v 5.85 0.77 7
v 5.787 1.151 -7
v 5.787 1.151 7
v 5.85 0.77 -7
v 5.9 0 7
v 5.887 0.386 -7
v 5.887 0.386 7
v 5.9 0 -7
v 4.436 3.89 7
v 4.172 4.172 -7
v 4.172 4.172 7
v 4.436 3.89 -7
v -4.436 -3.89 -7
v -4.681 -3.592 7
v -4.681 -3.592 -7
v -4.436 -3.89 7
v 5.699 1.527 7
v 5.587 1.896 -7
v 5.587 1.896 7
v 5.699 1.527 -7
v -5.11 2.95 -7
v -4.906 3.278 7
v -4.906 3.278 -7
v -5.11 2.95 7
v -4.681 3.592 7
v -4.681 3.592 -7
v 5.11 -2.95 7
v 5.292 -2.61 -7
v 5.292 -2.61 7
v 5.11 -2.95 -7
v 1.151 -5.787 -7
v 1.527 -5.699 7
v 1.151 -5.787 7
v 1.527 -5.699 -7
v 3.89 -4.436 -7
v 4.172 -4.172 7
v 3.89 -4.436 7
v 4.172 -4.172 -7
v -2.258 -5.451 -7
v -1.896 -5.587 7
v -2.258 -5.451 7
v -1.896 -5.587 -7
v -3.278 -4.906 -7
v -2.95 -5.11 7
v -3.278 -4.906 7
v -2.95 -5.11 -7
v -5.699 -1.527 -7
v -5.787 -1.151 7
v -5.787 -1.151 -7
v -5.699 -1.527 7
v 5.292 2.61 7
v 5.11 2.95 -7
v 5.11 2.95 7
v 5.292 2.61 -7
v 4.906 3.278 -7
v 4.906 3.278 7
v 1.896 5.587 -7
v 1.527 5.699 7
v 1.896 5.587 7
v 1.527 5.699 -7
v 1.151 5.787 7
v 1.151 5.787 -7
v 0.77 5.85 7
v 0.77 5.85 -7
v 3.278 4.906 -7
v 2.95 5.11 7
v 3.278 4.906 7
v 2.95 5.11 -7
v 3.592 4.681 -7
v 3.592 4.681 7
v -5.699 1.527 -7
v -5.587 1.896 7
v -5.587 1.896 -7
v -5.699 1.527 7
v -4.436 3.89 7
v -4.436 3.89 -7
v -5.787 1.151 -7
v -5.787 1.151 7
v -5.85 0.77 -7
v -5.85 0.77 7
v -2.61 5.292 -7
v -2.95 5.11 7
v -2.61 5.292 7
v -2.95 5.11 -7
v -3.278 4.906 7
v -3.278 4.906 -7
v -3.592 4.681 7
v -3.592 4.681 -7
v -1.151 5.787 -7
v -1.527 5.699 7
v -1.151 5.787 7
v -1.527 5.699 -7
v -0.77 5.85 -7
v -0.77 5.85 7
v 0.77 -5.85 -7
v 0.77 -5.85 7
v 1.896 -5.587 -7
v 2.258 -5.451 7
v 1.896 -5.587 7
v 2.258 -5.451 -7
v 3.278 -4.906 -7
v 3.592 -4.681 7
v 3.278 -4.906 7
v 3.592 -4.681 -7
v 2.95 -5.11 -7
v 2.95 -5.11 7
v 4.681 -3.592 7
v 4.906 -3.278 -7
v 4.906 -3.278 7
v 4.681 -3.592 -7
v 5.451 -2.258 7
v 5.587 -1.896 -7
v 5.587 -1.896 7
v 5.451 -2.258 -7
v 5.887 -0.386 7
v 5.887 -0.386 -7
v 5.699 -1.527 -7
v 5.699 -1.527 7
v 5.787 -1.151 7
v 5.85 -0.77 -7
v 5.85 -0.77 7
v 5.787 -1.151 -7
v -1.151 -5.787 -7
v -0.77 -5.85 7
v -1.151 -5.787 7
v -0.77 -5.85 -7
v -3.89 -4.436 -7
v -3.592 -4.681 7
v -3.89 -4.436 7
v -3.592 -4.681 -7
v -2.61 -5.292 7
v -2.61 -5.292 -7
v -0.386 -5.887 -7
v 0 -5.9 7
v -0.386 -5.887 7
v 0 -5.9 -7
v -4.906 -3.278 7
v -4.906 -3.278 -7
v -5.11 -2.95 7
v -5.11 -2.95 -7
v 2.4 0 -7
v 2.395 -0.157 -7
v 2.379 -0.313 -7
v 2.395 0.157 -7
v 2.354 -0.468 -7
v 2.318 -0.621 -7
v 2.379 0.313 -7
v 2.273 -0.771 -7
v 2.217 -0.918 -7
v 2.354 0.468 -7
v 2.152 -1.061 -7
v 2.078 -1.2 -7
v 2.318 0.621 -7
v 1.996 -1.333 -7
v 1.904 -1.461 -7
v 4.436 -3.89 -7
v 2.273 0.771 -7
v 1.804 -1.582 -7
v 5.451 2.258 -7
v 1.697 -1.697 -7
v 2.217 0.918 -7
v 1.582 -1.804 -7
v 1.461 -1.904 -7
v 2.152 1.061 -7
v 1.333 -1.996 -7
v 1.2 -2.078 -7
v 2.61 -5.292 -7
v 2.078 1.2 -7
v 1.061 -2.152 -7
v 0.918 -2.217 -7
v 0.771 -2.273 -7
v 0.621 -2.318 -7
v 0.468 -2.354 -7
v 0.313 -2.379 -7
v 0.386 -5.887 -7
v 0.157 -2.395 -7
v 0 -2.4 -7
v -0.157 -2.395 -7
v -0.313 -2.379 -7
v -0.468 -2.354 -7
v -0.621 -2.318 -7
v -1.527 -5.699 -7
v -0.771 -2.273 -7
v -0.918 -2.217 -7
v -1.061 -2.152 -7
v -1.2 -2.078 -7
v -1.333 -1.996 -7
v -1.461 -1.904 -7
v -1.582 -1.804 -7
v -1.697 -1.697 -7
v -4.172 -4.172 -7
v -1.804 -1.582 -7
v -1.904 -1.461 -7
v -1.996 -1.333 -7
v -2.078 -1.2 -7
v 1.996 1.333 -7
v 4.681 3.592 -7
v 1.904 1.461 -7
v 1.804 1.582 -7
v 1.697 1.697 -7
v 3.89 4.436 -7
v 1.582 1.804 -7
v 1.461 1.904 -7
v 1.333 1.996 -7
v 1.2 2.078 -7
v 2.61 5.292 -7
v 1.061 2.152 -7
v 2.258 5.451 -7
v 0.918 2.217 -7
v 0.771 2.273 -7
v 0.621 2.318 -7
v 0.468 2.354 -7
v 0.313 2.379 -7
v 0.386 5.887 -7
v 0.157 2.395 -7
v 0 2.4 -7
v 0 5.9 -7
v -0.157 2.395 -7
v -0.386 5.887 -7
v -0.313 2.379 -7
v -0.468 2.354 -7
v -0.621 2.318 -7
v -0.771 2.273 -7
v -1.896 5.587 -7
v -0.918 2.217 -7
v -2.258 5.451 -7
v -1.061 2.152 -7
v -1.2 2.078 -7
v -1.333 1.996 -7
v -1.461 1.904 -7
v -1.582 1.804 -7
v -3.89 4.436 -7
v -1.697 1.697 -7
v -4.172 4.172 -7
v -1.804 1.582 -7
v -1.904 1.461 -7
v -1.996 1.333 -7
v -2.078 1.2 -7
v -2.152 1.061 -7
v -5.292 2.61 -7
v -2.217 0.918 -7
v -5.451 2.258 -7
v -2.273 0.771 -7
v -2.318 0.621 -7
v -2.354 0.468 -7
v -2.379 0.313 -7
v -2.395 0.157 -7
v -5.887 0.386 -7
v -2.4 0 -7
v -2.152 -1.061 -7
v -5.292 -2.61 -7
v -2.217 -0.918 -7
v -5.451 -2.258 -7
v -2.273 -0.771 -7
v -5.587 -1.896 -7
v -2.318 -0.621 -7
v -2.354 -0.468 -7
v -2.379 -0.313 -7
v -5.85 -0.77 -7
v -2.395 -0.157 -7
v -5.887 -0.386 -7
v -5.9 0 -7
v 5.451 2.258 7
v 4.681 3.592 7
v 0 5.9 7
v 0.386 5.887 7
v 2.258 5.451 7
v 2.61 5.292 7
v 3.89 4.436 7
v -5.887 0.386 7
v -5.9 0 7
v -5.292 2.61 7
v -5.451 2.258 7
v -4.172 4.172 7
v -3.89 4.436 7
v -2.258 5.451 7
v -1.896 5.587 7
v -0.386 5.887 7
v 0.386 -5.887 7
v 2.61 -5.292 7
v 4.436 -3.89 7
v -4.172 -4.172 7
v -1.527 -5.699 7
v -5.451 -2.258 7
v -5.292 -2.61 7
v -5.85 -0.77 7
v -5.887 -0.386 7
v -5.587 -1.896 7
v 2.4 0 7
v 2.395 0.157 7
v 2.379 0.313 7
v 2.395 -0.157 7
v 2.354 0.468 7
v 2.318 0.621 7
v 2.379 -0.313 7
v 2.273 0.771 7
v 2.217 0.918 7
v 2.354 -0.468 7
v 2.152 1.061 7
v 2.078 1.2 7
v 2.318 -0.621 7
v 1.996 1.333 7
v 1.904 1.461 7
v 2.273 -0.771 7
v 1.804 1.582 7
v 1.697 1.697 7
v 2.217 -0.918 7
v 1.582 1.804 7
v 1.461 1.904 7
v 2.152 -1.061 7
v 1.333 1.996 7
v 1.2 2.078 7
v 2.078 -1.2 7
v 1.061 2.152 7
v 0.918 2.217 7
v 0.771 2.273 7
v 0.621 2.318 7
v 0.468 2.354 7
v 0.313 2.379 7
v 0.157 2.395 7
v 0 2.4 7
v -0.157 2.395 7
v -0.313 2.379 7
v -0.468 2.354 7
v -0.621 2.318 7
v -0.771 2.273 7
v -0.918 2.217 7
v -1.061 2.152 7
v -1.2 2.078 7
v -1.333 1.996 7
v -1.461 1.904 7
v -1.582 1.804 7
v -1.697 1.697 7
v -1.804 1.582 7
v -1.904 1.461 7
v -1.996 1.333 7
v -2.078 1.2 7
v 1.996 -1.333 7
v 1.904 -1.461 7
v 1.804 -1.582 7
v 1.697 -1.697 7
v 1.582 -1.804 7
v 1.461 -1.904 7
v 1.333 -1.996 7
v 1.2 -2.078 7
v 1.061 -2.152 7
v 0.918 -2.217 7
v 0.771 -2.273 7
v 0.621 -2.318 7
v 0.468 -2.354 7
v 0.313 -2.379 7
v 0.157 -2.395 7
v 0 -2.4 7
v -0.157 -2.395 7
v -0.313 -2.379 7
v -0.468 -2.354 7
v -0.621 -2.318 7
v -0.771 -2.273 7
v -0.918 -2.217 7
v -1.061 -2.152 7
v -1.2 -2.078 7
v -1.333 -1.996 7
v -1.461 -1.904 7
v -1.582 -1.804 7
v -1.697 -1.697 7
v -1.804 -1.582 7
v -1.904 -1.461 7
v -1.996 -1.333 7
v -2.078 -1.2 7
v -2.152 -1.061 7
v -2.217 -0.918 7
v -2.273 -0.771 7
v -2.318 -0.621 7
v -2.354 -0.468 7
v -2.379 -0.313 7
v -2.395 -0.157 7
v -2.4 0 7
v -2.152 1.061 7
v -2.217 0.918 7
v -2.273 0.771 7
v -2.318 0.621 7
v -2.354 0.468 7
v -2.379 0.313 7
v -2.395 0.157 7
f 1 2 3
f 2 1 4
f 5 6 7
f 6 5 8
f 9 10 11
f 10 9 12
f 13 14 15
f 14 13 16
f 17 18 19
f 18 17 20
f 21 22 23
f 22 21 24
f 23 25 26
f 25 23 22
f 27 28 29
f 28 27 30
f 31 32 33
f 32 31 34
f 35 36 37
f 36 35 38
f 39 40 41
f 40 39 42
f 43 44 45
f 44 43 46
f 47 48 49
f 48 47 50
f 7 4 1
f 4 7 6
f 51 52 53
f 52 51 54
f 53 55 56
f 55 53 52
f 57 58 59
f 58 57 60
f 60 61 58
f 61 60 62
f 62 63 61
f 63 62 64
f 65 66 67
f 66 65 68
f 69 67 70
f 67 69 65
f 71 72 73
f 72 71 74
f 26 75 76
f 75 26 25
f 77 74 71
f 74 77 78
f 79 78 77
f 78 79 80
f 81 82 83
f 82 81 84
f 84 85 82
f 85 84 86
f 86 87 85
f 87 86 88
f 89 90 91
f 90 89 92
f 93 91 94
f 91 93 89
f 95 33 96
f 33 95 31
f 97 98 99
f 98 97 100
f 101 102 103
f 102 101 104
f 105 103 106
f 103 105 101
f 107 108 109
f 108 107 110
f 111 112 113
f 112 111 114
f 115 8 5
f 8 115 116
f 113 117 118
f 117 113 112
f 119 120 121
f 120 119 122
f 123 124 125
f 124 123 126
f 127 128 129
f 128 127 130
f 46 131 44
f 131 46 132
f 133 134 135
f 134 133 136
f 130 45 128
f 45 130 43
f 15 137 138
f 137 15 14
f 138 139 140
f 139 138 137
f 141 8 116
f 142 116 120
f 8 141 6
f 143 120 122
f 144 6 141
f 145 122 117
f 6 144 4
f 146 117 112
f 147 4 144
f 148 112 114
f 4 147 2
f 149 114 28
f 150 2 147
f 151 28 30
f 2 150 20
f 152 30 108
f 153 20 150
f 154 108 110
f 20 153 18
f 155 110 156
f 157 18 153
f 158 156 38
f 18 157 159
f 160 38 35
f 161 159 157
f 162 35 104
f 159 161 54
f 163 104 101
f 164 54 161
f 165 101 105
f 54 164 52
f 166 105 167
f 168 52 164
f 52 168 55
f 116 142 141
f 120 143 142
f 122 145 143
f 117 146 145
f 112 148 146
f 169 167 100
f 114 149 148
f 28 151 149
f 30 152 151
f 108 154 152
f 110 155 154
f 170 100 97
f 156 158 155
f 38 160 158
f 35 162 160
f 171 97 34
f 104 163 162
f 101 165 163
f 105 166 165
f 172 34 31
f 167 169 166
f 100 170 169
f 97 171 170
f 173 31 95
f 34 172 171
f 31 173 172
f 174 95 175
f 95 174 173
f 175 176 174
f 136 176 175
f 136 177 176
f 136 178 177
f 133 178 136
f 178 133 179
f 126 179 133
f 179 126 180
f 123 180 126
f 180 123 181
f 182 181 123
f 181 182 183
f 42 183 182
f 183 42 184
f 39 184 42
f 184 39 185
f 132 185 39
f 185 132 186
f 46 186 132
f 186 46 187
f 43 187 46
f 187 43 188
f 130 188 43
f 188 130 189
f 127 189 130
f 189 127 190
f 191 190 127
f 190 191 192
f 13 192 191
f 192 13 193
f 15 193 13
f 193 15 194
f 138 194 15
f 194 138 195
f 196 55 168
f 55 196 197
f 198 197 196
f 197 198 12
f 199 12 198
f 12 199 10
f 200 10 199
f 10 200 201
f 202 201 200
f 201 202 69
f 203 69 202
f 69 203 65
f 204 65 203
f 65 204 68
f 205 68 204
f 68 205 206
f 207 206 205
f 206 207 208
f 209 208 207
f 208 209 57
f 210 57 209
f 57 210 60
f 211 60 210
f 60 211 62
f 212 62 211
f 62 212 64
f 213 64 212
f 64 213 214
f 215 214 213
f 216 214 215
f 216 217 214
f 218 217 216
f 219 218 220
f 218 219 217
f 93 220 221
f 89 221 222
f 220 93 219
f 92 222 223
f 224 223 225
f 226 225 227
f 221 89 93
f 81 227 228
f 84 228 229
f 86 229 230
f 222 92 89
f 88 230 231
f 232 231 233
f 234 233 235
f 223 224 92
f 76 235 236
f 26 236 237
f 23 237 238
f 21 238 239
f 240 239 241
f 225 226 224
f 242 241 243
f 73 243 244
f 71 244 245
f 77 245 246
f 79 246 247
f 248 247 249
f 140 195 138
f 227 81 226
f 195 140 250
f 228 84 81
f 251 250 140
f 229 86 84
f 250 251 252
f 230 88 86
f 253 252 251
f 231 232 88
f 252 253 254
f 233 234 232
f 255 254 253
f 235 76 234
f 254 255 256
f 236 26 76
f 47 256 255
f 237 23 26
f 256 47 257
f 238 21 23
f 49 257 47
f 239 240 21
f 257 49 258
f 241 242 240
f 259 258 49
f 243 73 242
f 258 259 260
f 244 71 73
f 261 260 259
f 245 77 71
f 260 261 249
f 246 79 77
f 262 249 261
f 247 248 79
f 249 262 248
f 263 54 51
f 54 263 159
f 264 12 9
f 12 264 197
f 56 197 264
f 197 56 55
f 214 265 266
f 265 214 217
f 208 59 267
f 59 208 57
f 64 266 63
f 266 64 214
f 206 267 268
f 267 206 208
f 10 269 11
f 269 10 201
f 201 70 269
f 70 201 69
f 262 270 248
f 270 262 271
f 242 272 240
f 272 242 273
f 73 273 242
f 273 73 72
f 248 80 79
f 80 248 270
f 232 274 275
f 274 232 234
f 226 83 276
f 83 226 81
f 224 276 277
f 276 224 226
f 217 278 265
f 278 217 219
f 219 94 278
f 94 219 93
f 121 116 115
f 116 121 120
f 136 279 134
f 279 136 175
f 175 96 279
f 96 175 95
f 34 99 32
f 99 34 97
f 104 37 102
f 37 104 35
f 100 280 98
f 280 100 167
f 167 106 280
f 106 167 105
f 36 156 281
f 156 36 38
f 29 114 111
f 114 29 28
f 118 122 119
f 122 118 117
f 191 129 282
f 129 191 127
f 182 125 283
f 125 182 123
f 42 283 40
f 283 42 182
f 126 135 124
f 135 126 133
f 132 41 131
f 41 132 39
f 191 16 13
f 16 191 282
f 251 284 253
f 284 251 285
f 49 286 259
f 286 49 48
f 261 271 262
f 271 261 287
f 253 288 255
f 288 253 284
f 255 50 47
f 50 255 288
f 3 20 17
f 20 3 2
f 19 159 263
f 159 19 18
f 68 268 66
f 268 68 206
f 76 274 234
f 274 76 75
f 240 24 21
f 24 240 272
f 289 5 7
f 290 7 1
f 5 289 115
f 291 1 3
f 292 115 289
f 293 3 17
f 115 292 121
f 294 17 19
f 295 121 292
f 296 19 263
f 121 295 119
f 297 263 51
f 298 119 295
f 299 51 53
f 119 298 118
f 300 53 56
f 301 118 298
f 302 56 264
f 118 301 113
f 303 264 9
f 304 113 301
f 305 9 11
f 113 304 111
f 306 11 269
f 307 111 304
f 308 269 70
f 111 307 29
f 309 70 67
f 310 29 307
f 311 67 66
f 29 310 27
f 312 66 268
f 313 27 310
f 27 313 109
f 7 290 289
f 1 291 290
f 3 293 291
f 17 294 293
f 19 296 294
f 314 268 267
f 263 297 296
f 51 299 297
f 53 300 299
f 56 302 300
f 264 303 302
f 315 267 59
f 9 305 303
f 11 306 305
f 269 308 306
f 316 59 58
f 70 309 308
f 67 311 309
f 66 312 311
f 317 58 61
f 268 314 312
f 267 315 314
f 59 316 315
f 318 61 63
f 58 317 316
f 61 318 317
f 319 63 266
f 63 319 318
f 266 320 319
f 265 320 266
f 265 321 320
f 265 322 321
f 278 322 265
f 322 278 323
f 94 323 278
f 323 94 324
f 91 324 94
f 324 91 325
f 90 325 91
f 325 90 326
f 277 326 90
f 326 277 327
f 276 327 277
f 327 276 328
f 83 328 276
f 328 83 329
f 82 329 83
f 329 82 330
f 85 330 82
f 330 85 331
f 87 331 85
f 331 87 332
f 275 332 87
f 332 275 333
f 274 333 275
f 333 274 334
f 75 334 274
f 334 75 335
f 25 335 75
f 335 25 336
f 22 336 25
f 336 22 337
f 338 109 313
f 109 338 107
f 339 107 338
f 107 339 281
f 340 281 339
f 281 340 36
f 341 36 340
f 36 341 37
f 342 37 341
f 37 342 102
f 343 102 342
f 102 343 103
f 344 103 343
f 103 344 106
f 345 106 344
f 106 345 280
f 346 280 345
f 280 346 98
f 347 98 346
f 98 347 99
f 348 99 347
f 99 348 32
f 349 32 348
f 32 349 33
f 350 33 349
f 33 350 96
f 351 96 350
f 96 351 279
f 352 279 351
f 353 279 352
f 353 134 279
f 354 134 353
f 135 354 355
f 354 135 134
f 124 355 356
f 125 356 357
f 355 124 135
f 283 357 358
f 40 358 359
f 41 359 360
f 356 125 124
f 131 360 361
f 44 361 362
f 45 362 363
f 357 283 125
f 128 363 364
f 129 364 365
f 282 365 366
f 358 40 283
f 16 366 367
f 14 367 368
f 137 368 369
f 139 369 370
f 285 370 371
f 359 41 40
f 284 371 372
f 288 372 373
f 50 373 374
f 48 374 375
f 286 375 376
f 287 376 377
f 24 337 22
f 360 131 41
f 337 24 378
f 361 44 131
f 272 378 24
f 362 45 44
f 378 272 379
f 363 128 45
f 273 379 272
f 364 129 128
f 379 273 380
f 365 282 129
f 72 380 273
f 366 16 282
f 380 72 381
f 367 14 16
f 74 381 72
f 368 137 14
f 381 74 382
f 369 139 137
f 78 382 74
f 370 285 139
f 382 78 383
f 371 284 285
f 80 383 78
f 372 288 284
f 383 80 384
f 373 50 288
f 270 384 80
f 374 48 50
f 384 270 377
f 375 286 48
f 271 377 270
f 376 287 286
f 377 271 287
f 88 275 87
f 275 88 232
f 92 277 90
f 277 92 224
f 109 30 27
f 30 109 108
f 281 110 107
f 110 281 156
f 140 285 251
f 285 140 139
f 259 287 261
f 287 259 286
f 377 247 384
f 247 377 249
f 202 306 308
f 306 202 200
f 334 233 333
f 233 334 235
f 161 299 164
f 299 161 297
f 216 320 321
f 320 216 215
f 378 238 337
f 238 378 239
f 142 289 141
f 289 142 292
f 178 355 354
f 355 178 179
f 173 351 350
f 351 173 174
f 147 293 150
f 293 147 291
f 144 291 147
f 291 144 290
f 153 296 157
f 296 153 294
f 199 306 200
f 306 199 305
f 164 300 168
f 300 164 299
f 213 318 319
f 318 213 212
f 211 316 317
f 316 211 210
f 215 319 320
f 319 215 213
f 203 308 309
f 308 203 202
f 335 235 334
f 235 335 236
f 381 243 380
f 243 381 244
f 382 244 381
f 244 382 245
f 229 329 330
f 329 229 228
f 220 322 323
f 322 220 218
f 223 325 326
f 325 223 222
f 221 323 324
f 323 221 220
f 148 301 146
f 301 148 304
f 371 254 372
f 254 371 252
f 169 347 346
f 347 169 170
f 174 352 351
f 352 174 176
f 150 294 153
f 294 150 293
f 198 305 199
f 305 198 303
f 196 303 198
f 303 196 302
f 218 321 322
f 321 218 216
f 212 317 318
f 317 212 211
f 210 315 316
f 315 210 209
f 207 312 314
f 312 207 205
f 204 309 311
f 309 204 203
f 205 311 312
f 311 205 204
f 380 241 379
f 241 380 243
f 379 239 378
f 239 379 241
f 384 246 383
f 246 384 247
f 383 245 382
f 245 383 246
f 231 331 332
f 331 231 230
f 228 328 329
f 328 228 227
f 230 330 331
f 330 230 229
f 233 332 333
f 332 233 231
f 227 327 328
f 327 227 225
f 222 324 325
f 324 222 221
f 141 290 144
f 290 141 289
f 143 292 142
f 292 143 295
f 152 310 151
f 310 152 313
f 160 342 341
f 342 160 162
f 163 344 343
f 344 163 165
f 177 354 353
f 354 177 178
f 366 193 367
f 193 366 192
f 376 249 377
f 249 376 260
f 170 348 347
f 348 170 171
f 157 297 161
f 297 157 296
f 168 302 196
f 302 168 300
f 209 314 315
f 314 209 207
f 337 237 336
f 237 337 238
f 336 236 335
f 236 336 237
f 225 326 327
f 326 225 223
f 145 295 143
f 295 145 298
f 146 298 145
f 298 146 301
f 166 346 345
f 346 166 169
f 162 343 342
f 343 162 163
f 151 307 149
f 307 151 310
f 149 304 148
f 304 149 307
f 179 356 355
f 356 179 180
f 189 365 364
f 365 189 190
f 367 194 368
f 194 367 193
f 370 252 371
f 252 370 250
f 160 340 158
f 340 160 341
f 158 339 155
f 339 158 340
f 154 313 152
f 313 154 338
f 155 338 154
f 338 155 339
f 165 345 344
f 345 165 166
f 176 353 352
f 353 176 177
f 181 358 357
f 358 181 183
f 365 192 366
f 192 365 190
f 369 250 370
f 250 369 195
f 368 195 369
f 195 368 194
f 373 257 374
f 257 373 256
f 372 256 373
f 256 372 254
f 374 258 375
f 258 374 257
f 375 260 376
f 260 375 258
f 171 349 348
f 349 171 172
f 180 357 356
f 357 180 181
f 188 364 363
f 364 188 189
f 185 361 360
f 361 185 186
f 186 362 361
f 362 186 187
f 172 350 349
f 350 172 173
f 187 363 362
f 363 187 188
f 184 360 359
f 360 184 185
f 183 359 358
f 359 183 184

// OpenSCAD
// Spacers between Z backpart and winged nut on Z carriage
// 6 pieces


M4=4.8;        // for easy insertion on M4 bold  
Height=14;


difference()
{
cylinder(h=Height,d=M4+7,center=true,$fn=96);
 cylinder(h=Height+1,d=M4,center=true,$fn=96) ;  
    
}
